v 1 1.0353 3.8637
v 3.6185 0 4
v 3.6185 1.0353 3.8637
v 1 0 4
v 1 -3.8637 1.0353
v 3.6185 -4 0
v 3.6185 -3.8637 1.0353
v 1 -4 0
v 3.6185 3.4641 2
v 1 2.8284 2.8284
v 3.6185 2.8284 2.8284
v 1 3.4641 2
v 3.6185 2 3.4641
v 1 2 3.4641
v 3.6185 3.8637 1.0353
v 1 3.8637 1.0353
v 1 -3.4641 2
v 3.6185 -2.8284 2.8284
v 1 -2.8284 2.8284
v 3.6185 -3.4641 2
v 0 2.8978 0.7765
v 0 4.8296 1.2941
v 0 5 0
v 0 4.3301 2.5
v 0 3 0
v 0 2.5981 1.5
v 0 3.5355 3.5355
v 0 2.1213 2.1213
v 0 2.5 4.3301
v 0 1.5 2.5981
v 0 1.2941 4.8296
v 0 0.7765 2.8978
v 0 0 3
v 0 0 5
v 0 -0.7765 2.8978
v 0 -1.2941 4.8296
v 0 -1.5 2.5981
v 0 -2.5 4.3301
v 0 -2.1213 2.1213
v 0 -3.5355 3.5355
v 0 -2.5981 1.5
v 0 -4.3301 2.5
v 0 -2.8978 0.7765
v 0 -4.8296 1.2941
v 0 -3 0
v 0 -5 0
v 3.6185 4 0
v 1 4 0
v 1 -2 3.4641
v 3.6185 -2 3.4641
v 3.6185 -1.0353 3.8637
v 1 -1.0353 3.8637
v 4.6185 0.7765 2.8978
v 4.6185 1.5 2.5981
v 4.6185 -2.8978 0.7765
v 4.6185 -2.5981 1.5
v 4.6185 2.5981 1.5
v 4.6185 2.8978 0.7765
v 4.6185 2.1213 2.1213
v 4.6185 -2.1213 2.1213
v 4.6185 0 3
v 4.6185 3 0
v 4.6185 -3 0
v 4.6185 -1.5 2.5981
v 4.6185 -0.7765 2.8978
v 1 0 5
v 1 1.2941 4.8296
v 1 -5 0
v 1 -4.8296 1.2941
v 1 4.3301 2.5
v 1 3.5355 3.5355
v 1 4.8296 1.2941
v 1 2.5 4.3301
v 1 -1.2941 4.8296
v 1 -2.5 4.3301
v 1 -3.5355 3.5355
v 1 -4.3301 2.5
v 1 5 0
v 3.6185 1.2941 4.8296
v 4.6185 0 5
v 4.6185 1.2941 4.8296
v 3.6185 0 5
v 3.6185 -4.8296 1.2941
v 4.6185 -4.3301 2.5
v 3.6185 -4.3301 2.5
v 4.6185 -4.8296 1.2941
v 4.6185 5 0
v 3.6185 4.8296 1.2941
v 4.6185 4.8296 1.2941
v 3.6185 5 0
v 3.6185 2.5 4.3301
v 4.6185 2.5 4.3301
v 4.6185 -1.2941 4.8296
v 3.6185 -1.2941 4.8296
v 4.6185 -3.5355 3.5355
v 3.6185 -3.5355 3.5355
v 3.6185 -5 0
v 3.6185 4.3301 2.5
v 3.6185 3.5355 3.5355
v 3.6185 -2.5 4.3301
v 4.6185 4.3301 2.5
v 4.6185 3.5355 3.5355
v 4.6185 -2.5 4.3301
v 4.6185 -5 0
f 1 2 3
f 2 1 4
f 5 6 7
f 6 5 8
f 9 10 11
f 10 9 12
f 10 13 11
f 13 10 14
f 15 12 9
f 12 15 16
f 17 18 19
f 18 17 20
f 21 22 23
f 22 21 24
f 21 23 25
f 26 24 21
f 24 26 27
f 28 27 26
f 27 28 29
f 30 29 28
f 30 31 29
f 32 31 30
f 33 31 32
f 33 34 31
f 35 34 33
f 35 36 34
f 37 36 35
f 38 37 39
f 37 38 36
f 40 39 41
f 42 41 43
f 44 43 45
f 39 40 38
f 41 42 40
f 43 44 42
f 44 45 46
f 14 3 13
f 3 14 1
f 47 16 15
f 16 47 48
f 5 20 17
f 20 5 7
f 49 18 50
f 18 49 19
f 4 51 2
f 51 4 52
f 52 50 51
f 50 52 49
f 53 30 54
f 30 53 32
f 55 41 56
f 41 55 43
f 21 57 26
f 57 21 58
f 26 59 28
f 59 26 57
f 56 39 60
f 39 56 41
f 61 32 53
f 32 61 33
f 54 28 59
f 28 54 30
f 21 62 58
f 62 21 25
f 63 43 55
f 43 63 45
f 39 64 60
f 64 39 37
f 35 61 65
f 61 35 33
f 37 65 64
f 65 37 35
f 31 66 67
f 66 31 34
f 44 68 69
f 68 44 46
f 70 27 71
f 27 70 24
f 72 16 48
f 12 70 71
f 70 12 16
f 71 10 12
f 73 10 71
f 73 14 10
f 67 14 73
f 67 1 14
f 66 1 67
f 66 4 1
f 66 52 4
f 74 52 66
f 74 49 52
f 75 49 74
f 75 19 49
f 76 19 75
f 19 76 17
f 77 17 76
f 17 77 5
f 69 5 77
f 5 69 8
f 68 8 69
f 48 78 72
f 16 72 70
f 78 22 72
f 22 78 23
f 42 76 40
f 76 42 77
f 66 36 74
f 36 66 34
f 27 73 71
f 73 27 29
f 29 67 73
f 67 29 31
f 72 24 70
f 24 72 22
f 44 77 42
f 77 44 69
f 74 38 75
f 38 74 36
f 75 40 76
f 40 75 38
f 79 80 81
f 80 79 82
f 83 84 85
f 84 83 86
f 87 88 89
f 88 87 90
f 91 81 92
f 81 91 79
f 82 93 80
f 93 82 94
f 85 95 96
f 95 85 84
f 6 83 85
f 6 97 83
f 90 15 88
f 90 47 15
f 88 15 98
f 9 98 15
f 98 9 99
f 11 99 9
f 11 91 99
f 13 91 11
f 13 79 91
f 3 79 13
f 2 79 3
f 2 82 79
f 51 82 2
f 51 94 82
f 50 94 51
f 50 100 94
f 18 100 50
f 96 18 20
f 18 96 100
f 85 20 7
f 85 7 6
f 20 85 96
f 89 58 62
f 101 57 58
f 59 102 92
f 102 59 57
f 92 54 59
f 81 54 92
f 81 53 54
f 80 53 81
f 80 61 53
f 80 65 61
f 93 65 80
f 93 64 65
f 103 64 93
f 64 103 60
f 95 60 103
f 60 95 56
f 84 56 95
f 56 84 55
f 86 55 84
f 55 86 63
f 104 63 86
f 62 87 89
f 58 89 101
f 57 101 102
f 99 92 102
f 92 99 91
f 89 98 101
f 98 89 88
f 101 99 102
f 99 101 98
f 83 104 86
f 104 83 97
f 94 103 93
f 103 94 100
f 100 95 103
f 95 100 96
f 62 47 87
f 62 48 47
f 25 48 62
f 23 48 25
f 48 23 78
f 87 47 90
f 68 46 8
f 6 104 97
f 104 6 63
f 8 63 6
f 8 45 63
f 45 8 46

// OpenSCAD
// file: ../build_environments.scad
// build_environments.scad: modules to build level sections
//

module pool(diameter=10.0, wall_height=2.0, step_width=3.0, connections=[])
{
    difference() {
        union() {
        difference() {
            cylinder(h=0.5,r1=diameter+step_width,r2=diameter+step_width,$fn=48);
            translate([0,0,-0.1])
                cylinder(h=0.7,r1=diameter,r2=diameter,$fn=48);
        }
        difference() {
            cylinder(h=wall_height,r1=diameter+step_width+1.0,r2=diameter+step_width+1.0,$fn=48);
            translate([0,0,-0.1])
                cylinder(h=wall_height+0.2,r1=diameter+step_width,r2=diameter+step_width,$fn=48);
        }
        }
    
        for (c = connections)
        {
            rotate([0,90,0]) {
                angle = atan2(c[1],c[0]);
                rotate([-angle,0,0]) {
                    cylinder(h=diameter+5.0,r1=c[2],r2=c[2],$fn=48);
                }
            }
        }
    }
}

module straight(length=10.0, width=2.0, dy1=0.0, dy2=0.0, dz=0.0)
{
    dims = [0, 0, 0, 0, 0, (dz/length)];
    matrix = [
        [ 1, dims[0], dims[1], 0 ],
        [ dims[2], 1, dims[4], 0 ],
        [ dims[5], dims[3], 1, 0 ],
        [ 0, 0, 0, 1 ]
    ];
    multmatrix(matrix)
    difference() {
        translate([dy1,0,0])
        union() {
            rotate([0,90,0]) {
                difference() {
                    cylinder(h=(length-dy1-dy2),r1=width+1.0,r2=width+1.0,$fn=24);
                    translate([0,0,-0.1])
                        cylinder(h=(length-dy1-dy2+0.2),r1=width,r2=width,$fn=24);
                }
                difference() {
                    cylinder(h=1.0,r1=width+2.0,r2=width+2.0,$fn=24);
                    translate([0,0,-0.1])
                        cylinder(h=1.2,r1=width,r2=width,$fn=24);
                }
                translate([0,0,(length-dy1-dy2)-1.0]) {
                    difference() {
                        cylinder(h=1.0,r1=width+2.0,r2=width+2.0,$fn=24);
                        translate([0,0,-0.1])
                            cylinder(h=1.2,r1=width,r2=width,$fn=24);
                    }
                }
            }
        }
        translate([0,0,-(2*width+4.0)/2])
            cube([3*length,3*length,2*width+4.0],center=true);
    }
}

module curve(p0=[0,0], center=[0,0], dir=1, angle=0.0, width=2.0)
{
    radius = sqrt((p0[0]-center[0])*(p0[0]-center[0]) + (p0[1]-center[1])*(p0[1]-center[1]));
    if (dir == 0) {
        difference() {
            rotate([0,0,-90])
            difference() {
                rotate_extrude(angle = angle, convexity = 10, $fn=32)
                    translate([radius, 0, 0])
                        circle(r = width+1.0,$fn=24);
                rotate([0,0,-1.0])
                    rotate_extrude(angle = angle+2.0, convexity = 10, $fn=32)
                        translate([radius, 0, 0])
                            circle(r = width,$fn=24);
            }
            translate([0,0,-(2*width+4.0)/2])
                cube([5*radius,5*radius,2*width+4.0],center=true);
        }
    }
    else {
        difference() {
            rotate([0,0,90])
            difference() {
                rotate_extrude(angle = -angle, convexity = 10, $fn=32)
                    translate([radius, 0, 0])
                        circle(r = width+1.0,$fn=24);
                rotate([0,0,1.0])
                    rotate_extrude(angle = -angle-2.0, convexity = 10, $fn=32)
                        translate([radius, 0, 0])
                            circle(r = width,$fn=24);
            }
            translate([0,0,-(2*width+4.0)/2])
                cube([5*radius,5*radius,2*width+4.0],center=true);
        }
    }

}

// test pool
//pool(diameter=12.0000, wall_height=3.0000, step_width=3.0000, connections=[[0.0000,-26.0000,2.0000], [23.6074,0.0000,2.0000]]);

// test straight, slope
//straight(length=26.0000, width=2.0000, dy1=11.8322, dy2=6.7082, dz=0.0000);
//straight(length=29.1549, width=12.0000, dy1=0.0000, dy2=0.0000, dz=-15.0000);

// test curve
//curve(p0=[23.6074, 0.0000], center=[23.6074, 5.0000], dir=0, angle=60.1011, width=2.0000);
//curve(p0=[33.6426, 12.4219], center=[37.9771, 9.9295], dir=1, angle=120.4627, width=2.0000);
// main file
use <../build_environments.scad>;
straight(length=4.6185, width=3.0000, dy1=0.0000, dy2=0.0000, dz=0.0000);
